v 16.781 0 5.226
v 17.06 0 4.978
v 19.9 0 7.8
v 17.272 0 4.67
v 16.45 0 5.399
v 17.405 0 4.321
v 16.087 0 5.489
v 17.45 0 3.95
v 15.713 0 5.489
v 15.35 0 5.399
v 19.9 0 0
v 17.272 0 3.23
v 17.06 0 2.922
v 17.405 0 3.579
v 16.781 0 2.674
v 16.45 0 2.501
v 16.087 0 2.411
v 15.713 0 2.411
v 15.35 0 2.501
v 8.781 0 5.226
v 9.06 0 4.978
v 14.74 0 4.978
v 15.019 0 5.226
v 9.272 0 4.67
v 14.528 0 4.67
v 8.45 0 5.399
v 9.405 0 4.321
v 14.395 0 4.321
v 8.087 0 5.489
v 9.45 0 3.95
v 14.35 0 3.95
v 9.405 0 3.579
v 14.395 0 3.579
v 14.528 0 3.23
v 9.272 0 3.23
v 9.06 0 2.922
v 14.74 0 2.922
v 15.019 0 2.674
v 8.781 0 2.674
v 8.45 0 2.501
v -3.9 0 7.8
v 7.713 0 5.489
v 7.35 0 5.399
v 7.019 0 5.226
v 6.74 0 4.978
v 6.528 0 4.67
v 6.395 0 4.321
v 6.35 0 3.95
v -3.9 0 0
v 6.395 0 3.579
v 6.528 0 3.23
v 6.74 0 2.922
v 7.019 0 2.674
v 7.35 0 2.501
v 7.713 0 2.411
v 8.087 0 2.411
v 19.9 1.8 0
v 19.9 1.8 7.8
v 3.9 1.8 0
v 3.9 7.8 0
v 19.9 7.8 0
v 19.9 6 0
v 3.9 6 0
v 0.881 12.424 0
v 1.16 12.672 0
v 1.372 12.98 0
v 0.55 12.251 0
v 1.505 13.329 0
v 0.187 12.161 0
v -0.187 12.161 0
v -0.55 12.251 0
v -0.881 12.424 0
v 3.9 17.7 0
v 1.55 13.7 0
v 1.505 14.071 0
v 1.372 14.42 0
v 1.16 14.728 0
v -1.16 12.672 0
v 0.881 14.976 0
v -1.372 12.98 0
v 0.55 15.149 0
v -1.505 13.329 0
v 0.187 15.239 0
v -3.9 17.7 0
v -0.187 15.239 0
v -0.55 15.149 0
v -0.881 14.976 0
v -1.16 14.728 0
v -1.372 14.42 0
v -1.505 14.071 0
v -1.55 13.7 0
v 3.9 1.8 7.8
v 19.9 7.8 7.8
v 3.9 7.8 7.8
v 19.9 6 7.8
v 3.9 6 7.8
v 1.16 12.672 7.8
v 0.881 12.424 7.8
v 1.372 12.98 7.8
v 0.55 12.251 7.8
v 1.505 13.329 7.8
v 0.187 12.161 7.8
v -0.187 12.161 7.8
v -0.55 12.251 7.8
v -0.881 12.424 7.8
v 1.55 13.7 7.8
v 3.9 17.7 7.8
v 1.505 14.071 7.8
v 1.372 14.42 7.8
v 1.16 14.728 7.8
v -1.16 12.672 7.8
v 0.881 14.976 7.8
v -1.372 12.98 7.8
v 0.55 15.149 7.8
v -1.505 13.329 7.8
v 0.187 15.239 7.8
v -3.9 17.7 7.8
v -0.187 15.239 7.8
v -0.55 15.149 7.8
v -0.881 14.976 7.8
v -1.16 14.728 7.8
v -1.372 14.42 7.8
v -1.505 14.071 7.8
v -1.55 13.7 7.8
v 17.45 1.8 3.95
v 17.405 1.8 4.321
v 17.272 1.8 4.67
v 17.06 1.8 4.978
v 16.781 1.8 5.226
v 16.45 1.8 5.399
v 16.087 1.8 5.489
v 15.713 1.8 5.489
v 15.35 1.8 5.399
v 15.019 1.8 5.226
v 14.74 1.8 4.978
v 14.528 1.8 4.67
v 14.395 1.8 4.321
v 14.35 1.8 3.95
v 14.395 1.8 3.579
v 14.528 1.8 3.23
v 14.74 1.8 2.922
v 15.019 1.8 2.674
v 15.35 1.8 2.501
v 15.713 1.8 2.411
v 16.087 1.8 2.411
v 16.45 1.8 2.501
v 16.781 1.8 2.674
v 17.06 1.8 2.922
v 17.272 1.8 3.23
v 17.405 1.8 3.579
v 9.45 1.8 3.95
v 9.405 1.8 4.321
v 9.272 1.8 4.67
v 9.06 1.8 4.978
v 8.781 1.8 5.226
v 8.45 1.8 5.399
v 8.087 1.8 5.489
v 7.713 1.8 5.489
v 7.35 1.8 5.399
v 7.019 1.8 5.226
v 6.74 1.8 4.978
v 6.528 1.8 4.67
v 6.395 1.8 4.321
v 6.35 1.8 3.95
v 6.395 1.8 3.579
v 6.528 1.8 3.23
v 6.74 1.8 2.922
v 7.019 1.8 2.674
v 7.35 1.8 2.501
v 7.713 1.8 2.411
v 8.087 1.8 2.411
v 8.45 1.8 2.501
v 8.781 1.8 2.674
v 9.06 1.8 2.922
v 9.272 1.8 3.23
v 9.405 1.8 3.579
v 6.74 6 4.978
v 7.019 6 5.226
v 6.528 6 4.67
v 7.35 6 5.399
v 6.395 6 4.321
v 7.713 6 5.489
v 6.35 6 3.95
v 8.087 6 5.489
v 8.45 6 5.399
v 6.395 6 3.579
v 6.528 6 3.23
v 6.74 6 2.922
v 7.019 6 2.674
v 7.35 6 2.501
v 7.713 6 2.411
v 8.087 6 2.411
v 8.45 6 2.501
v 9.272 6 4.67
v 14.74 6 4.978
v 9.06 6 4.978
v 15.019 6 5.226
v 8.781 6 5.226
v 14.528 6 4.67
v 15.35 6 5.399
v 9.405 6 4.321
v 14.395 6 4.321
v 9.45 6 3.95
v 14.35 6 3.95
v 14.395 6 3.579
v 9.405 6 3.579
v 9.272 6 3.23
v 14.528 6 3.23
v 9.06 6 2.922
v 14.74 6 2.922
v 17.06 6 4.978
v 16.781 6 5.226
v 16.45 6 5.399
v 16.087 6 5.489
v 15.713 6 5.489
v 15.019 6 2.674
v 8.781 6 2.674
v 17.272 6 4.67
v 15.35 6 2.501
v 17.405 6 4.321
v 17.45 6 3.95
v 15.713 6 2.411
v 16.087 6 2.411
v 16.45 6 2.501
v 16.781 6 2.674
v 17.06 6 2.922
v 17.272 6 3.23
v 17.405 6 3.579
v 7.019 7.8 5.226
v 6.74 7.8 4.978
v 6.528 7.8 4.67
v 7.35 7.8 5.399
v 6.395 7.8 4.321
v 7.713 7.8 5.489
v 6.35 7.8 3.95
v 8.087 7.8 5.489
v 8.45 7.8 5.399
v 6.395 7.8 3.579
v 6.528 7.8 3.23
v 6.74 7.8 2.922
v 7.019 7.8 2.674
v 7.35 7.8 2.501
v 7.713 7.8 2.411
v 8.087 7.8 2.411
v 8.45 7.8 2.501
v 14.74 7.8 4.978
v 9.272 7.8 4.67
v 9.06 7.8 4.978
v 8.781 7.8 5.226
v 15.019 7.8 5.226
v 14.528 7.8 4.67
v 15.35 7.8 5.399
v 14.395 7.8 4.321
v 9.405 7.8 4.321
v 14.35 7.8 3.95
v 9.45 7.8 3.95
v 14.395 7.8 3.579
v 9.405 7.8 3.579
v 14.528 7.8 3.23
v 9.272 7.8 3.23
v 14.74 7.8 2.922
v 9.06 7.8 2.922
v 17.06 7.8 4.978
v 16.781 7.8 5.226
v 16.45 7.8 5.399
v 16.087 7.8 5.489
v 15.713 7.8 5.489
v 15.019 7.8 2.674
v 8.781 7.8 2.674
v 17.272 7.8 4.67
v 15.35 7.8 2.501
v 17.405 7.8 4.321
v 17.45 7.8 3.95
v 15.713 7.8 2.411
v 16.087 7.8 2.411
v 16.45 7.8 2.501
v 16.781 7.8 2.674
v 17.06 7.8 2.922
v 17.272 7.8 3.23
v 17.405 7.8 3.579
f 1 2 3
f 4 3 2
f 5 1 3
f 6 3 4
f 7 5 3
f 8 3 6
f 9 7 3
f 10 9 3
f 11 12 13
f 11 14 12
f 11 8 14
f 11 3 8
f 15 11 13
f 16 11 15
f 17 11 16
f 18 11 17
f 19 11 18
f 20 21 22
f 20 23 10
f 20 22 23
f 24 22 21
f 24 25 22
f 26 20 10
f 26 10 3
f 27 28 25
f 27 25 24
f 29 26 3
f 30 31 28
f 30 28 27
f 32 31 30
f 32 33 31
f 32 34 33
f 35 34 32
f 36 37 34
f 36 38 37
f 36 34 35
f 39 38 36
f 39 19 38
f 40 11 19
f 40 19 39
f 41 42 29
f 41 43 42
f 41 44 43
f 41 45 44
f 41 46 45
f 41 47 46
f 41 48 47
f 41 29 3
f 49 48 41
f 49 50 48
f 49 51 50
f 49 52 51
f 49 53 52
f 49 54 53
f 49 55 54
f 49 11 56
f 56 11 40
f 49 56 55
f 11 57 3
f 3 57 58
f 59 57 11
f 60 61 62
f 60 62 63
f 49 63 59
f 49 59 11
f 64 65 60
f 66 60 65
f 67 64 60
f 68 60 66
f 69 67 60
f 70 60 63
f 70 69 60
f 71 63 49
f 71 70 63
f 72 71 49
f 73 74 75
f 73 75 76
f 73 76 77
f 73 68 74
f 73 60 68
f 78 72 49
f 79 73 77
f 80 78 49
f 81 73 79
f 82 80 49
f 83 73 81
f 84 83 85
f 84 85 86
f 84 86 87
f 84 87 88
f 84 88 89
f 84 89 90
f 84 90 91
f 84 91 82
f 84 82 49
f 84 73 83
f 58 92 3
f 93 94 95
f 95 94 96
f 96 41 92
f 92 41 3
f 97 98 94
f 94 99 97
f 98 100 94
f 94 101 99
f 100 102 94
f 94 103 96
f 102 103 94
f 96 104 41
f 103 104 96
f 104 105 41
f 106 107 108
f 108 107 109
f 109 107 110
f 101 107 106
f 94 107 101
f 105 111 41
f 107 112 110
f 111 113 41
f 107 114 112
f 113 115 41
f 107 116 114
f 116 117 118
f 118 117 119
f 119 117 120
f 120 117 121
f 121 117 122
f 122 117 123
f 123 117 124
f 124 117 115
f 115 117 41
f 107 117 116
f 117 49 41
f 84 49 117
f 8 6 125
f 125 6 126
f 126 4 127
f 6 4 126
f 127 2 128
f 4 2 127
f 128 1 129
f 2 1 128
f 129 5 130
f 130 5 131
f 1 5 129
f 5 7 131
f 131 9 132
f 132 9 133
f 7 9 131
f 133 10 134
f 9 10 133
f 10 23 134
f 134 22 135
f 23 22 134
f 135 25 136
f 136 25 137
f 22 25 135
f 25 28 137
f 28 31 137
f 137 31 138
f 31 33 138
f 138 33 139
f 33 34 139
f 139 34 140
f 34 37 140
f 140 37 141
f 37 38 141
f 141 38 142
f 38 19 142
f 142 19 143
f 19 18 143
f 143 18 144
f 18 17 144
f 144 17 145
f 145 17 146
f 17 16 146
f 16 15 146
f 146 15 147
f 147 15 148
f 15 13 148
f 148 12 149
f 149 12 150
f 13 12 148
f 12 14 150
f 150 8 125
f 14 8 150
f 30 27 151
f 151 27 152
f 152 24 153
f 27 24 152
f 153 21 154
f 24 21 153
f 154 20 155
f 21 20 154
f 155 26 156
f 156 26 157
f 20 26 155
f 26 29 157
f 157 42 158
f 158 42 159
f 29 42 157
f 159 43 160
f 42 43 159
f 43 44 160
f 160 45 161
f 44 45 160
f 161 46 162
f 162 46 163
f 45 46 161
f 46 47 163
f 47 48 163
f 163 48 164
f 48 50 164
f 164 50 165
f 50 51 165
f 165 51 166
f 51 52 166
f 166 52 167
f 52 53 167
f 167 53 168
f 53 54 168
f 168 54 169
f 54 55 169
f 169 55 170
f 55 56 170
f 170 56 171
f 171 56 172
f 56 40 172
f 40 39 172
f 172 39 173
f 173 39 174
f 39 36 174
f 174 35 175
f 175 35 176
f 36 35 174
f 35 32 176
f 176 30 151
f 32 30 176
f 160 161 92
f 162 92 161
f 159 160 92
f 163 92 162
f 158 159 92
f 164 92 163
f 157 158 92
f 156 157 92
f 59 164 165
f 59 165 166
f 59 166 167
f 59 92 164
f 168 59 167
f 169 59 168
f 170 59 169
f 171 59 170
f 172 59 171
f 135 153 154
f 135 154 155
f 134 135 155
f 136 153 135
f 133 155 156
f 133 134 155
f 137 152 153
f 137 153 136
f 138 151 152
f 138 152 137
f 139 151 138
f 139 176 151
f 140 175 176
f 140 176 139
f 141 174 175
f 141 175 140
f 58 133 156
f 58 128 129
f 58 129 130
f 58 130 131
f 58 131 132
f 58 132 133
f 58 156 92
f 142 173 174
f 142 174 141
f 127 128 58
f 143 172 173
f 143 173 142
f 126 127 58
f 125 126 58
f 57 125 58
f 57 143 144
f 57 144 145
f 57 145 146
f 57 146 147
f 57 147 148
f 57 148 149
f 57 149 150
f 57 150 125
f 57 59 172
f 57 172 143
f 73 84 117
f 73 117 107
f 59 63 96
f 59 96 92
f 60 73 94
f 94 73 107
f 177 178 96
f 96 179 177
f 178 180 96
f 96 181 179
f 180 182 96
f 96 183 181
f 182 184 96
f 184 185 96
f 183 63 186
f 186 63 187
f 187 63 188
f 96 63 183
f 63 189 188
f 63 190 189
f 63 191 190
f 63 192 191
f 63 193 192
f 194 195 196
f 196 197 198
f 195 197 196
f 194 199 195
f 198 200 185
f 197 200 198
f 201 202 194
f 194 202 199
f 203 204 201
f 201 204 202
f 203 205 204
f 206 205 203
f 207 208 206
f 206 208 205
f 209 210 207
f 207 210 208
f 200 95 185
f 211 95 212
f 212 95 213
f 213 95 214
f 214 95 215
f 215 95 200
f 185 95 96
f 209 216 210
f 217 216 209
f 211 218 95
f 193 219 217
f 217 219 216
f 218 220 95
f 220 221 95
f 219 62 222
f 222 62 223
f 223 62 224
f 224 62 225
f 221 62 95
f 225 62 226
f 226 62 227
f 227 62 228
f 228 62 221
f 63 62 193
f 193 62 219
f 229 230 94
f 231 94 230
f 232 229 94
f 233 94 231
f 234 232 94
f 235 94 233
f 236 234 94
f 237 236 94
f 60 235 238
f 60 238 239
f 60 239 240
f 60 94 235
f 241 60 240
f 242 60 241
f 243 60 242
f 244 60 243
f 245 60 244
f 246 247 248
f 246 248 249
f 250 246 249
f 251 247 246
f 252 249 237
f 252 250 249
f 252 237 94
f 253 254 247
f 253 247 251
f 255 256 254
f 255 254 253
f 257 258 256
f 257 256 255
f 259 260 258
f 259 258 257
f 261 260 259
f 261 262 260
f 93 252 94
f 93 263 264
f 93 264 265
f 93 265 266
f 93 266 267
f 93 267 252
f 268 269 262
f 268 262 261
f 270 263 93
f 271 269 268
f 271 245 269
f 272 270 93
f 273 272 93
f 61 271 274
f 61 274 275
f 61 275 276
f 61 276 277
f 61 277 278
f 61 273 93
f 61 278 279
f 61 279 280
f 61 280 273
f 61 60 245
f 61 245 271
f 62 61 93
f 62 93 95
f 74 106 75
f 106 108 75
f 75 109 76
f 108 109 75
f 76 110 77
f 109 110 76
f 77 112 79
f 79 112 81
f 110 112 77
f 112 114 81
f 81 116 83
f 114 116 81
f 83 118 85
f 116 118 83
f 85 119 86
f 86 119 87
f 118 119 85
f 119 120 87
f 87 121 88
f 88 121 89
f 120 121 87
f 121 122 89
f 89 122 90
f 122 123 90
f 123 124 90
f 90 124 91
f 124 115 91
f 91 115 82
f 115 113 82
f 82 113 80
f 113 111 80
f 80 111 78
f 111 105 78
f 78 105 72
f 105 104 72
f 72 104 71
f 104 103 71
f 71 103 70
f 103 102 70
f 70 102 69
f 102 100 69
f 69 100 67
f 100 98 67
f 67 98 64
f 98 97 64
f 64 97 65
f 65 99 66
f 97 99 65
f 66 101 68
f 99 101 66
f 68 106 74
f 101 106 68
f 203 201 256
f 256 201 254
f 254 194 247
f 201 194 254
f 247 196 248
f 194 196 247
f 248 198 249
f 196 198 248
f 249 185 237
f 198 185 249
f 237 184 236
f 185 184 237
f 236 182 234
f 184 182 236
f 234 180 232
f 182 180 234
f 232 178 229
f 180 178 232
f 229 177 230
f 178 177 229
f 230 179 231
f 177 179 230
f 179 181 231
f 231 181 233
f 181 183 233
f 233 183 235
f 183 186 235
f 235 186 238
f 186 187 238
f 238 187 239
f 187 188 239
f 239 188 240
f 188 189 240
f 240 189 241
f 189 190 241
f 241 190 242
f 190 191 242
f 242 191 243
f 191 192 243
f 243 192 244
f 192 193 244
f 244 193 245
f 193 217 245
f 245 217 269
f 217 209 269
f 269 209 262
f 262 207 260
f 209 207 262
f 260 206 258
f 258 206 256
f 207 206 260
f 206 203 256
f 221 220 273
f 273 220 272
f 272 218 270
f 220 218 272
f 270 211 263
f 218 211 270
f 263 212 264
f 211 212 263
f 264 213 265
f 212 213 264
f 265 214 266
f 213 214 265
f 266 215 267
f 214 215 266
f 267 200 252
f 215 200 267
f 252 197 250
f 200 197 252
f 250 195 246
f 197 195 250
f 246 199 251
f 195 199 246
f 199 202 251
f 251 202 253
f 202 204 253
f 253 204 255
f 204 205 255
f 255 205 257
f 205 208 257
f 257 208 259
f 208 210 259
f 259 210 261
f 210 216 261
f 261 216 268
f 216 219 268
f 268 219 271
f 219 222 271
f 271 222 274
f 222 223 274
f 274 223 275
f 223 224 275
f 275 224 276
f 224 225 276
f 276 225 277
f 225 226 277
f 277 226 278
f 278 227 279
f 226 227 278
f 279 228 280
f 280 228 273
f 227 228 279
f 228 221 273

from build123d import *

# Parameters (mm, degrees)
PAD_DEPTH       = 7.8
SKETCH001_R     = 1.55
POCKET_DEPTH    = 17.701
SKETCH003_R     = 1.55
POCKET001_DEPTH = 7.801


with BuildPart() as part:
    # Sketch → Pad (new body)
    with BuildSketch(Plane.XY):
        Polygon((-3.9, 17.7), (3.9, 17.7), (3.9, 7.8), (19.9, 7.8), (19.9, 6), (3.9, 6), (3.9, 1.8), (19.9, 1.8), (19.9, 0), (-3.9, 0), align=None)
    extrude(amount=PAD_DEPTH)

    # Sketch001 (on Face1 of Pad) → Pocket (cut, through all)
    with BuildSketch(Plane.XZ):
        with Locations((7.9, 3.95)):
            Circle(SKETCH001_R)
        with Locations((15.9, 3.95)):
            Circle(SKETCH001_R)
    extrude(amount=-POCKET_DEPTH, mode=Mode.SUBTRACT)

    # Sketch003 (on Face4 of Pocket) → Pocket001 (cut, through all)
    with BuildSketch(Plane.XY.offset(7.8)):
        with Locations((0, 13.7)):
            Circle(SKETCH003_R)
    extrude(amount=-POCKET001_DEPTH, mode=Mode.SUBTRACT)


solid = part.part
